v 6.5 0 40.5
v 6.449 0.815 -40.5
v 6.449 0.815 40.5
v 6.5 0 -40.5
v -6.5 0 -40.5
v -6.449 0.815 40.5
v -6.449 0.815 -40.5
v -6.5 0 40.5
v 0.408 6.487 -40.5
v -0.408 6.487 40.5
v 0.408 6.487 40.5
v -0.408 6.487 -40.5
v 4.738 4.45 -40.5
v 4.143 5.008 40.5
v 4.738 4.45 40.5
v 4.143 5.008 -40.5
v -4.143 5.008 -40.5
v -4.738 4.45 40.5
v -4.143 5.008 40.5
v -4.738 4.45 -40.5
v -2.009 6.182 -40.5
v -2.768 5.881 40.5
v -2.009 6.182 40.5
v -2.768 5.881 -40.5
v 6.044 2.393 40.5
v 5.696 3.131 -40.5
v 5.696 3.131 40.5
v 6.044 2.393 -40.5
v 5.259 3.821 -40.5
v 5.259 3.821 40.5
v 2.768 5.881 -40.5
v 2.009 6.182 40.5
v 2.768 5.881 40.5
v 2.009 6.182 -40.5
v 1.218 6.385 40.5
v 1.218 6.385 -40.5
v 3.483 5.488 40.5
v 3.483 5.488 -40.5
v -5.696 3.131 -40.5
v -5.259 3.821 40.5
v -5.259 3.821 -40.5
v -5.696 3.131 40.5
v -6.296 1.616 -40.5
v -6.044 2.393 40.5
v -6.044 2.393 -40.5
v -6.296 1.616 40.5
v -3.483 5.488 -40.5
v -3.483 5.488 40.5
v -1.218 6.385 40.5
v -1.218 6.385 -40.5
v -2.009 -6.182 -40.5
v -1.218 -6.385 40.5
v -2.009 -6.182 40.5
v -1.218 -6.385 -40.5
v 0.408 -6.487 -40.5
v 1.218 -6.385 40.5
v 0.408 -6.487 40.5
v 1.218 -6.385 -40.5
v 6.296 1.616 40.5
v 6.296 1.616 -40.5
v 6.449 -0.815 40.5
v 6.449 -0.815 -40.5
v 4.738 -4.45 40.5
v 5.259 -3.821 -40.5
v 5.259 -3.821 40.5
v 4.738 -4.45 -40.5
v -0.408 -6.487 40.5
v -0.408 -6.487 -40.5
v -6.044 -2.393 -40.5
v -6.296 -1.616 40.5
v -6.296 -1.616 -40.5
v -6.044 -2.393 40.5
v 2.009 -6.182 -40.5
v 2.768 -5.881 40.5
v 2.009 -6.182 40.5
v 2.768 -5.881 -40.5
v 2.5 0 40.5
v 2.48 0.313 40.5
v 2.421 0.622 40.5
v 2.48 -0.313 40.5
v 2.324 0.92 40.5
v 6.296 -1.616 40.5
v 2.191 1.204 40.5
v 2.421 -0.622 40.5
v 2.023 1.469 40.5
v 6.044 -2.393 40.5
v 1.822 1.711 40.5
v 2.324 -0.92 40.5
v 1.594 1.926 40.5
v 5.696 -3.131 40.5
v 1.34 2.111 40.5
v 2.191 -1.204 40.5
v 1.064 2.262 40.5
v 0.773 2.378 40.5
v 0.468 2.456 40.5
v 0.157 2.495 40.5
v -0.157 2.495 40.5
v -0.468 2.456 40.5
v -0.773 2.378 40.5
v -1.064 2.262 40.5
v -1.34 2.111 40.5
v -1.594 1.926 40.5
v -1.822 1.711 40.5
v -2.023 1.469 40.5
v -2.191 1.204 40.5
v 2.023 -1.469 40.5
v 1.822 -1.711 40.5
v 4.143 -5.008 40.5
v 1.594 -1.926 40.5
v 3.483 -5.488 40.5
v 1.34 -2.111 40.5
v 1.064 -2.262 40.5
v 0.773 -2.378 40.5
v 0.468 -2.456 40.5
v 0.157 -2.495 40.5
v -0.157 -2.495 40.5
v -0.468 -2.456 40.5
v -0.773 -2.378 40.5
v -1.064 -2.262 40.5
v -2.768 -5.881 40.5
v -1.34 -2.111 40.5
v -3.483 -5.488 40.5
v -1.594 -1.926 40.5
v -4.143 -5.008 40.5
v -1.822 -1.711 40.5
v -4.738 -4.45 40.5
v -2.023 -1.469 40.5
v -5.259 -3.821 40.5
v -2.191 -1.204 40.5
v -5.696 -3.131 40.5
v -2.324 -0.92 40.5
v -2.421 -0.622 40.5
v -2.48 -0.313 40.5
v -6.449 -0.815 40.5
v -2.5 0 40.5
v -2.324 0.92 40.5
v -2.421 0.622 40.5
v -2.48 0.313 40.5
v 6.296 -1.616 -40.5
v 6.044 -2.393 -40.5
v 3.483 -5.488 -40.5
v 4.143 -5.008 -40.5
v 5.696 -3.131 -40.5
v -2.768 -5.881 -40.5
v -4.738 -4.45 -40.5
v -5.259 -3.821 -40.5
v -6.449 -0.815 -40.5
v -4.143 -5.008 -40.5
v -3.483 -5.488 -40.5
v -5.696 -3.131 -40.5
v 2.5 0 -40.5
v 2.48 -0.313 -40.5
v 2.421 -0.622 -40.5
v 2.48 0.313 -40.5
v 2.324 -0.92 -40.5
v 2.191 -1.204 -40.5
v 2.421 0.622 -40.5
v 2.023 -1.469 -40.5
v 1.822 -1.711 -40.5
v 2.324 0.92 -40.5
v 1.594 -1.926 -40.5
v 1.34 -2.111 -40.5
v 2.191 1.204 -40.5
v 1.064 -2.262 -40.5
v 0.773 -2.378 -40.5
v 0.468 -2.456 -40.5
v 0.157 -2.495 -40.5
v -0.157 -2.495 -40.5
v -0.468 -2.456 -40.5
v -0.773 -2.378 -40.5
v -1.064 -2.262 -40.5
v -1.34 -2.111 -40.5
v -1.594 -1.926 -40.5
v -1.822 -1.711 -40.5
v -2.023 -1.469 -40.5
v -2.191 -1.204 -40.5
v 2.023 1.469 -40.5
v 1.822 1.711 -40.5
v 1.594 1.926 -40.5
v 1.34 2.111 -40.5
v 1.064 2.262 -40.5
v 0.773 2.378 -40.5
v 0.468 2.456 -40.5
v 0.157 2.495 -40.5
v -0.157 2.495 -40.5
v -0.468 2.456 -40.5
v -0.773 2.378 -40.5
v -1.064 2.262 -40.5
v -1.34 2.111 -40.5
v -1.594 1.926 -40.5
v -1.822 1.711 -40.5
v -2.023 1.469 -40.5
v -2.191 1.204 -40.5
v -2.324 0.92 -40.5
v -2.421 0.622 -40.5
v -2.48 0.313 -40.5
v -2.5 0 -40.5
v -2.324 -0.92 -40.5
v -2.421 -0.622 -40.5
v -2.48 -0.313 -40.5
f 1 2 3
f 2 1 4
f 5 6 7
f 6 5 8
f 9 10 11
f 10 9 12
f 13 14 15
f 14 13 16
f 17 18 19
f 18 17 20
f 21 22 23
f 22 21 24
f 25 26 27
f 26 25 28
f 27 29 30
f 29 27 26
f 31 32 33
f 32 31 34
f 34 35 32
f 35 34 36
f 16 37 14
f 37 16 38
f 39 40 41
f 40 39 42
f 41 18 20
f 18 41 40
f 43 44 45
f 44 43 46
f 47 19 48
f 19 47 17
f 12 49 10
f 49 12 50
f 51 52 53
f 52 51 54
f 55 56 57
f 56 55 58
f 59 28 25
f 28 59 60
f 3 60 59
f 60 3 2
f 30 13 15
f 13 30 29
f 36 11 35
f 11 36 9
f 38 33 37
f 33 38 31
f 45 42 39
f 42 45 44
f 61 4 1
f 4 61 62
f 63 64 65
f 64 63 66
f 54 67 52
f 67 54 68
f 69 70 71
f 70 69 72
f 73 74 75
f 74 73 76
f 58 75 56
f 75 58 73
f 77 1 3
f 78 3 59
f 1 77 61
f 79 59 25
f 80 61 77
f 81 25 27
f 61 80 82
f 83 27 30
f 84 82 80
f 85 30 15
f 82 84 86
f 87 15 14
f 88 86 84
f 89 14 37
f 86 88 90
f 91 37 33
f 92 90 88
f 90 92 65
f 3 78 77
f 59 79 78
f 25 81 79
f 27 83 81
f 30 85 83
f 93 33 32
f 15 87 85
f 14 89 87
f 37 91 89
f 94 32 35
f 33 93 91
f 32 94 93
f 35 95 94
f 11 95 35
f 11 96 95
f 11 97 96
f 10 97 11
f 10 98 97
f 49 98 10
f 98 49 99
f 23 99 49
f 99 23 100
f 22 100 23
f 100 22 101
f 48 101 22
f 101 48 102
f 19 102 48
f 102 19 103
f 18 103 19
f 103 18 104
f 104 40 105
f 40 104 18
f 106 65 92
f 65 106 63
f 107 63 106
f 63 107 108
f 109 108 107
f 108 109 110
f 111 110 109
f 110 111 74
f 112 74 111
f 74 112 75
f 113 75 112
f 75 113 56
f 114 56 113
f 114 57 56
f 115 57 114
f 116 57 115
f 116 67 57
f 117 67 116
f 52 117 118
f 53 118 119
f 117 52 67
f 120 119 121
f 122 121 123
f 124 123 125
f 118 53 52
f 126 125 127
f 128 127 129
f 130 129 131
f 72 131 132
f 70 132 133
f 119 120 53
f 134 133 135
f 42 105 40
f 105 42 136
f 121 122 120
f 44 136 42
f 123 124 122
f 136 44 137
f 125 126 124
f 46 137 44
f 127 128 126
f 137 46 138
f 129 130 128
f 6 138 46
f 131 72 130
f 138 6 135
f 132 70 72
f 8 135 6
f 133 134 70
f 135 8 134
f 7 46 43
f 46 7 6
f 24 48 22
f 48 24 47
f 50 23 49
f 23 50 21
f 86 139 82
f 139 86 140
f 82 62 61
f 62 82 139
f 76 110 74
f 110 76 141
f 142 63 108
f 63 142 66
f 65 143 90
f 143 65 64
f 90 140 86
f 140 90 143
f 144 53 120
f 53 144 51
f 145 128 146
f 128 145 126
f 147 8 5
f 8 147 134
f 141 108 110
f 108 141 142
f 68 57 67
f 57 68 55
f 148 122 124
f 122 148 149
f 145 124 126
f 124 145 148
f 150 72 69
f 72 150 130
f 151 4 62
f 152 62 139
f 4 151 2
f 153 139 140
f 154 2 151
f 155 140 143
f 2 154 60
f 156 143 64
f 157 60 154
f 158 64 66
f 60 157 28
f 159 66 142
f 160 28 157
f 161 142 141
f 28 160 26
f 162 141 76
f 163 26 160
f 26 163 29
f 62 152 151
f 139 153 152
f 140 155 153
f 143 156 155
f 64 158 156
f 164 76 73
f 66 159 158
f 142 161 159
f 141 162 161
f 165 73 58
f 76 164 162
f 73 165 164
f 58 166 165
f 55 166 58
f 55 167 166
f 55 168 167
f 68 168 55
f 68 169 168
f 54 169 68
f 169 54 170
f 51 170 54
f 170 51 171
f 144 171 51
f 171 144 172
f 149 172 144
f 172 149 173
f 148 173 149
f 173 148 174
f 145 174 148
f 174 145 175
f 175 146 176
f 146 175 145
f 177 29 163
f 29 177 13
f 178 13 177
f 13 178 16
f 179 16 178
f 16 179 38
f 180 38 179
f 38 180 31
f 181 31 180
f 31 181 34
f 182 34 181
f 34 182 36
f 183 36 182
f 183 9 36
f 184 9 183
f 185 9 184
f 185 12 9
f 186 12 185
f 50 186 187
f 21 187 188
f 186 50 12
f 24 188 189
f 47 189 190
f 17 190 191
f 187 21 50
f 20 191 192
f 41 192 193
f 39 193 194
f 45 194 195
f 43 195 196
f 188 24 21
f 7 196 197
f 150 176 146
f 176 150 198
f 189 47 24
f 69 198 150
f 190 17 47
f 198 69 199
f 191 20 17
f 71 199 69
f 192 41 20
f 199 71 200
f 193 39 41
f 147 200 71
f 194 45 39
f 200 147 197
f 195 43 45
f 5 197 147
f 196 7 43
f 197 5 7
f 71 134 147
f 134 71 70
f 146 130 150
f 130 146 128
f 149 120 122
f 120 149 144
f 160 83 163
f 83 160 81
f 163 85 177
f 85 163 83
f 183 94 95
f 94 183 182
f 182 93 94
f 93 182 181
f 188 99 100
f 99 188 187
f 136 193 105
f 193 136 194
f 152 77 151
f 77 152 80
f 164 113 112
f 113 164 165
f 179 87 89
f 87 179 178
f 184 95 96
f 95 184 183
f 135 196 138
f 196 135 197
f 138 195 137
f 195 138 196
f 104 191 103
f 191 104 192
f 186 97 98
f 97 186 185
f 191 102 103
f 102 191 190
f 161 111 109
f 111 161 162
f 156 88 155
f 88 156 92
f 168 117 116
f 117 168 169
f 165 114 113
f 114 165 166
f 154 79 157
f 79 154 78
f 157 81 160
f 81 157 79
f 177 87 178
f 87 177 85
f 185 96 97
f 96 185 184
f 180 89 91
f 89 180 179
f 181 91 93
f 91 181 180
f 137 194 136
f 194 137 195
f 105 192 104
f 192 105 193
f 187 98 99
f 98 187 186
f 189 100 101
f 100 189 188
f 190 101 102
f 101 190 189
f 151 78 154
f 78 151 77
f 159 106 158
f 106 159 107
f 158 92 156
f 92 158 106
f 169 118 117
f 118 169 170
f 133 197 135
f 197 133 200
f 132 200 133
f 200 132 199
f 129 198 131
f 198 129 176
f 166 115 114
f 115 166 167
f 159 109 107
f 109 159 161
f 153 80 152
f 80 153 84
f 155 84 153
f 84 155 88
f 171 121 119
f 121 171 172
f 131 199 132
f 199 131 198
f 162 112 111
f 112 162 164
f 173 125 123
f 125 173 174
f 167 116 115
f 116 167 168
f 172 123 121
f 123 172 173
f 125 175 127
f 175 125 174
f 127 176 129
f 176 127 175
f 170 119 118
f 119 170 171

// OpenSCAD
$fn = 50;


difference() {
	union() {
		translate(v = [0, 0, -40.5000000000]) {
			cylinder(h = 81, r = 6.5000000000);
		}
	}
	union() {
		translate(v = [0, 0, -100.0000000000]) {
			cylinder(h = 200, r = 2.5000000000);
		}
	}
}
